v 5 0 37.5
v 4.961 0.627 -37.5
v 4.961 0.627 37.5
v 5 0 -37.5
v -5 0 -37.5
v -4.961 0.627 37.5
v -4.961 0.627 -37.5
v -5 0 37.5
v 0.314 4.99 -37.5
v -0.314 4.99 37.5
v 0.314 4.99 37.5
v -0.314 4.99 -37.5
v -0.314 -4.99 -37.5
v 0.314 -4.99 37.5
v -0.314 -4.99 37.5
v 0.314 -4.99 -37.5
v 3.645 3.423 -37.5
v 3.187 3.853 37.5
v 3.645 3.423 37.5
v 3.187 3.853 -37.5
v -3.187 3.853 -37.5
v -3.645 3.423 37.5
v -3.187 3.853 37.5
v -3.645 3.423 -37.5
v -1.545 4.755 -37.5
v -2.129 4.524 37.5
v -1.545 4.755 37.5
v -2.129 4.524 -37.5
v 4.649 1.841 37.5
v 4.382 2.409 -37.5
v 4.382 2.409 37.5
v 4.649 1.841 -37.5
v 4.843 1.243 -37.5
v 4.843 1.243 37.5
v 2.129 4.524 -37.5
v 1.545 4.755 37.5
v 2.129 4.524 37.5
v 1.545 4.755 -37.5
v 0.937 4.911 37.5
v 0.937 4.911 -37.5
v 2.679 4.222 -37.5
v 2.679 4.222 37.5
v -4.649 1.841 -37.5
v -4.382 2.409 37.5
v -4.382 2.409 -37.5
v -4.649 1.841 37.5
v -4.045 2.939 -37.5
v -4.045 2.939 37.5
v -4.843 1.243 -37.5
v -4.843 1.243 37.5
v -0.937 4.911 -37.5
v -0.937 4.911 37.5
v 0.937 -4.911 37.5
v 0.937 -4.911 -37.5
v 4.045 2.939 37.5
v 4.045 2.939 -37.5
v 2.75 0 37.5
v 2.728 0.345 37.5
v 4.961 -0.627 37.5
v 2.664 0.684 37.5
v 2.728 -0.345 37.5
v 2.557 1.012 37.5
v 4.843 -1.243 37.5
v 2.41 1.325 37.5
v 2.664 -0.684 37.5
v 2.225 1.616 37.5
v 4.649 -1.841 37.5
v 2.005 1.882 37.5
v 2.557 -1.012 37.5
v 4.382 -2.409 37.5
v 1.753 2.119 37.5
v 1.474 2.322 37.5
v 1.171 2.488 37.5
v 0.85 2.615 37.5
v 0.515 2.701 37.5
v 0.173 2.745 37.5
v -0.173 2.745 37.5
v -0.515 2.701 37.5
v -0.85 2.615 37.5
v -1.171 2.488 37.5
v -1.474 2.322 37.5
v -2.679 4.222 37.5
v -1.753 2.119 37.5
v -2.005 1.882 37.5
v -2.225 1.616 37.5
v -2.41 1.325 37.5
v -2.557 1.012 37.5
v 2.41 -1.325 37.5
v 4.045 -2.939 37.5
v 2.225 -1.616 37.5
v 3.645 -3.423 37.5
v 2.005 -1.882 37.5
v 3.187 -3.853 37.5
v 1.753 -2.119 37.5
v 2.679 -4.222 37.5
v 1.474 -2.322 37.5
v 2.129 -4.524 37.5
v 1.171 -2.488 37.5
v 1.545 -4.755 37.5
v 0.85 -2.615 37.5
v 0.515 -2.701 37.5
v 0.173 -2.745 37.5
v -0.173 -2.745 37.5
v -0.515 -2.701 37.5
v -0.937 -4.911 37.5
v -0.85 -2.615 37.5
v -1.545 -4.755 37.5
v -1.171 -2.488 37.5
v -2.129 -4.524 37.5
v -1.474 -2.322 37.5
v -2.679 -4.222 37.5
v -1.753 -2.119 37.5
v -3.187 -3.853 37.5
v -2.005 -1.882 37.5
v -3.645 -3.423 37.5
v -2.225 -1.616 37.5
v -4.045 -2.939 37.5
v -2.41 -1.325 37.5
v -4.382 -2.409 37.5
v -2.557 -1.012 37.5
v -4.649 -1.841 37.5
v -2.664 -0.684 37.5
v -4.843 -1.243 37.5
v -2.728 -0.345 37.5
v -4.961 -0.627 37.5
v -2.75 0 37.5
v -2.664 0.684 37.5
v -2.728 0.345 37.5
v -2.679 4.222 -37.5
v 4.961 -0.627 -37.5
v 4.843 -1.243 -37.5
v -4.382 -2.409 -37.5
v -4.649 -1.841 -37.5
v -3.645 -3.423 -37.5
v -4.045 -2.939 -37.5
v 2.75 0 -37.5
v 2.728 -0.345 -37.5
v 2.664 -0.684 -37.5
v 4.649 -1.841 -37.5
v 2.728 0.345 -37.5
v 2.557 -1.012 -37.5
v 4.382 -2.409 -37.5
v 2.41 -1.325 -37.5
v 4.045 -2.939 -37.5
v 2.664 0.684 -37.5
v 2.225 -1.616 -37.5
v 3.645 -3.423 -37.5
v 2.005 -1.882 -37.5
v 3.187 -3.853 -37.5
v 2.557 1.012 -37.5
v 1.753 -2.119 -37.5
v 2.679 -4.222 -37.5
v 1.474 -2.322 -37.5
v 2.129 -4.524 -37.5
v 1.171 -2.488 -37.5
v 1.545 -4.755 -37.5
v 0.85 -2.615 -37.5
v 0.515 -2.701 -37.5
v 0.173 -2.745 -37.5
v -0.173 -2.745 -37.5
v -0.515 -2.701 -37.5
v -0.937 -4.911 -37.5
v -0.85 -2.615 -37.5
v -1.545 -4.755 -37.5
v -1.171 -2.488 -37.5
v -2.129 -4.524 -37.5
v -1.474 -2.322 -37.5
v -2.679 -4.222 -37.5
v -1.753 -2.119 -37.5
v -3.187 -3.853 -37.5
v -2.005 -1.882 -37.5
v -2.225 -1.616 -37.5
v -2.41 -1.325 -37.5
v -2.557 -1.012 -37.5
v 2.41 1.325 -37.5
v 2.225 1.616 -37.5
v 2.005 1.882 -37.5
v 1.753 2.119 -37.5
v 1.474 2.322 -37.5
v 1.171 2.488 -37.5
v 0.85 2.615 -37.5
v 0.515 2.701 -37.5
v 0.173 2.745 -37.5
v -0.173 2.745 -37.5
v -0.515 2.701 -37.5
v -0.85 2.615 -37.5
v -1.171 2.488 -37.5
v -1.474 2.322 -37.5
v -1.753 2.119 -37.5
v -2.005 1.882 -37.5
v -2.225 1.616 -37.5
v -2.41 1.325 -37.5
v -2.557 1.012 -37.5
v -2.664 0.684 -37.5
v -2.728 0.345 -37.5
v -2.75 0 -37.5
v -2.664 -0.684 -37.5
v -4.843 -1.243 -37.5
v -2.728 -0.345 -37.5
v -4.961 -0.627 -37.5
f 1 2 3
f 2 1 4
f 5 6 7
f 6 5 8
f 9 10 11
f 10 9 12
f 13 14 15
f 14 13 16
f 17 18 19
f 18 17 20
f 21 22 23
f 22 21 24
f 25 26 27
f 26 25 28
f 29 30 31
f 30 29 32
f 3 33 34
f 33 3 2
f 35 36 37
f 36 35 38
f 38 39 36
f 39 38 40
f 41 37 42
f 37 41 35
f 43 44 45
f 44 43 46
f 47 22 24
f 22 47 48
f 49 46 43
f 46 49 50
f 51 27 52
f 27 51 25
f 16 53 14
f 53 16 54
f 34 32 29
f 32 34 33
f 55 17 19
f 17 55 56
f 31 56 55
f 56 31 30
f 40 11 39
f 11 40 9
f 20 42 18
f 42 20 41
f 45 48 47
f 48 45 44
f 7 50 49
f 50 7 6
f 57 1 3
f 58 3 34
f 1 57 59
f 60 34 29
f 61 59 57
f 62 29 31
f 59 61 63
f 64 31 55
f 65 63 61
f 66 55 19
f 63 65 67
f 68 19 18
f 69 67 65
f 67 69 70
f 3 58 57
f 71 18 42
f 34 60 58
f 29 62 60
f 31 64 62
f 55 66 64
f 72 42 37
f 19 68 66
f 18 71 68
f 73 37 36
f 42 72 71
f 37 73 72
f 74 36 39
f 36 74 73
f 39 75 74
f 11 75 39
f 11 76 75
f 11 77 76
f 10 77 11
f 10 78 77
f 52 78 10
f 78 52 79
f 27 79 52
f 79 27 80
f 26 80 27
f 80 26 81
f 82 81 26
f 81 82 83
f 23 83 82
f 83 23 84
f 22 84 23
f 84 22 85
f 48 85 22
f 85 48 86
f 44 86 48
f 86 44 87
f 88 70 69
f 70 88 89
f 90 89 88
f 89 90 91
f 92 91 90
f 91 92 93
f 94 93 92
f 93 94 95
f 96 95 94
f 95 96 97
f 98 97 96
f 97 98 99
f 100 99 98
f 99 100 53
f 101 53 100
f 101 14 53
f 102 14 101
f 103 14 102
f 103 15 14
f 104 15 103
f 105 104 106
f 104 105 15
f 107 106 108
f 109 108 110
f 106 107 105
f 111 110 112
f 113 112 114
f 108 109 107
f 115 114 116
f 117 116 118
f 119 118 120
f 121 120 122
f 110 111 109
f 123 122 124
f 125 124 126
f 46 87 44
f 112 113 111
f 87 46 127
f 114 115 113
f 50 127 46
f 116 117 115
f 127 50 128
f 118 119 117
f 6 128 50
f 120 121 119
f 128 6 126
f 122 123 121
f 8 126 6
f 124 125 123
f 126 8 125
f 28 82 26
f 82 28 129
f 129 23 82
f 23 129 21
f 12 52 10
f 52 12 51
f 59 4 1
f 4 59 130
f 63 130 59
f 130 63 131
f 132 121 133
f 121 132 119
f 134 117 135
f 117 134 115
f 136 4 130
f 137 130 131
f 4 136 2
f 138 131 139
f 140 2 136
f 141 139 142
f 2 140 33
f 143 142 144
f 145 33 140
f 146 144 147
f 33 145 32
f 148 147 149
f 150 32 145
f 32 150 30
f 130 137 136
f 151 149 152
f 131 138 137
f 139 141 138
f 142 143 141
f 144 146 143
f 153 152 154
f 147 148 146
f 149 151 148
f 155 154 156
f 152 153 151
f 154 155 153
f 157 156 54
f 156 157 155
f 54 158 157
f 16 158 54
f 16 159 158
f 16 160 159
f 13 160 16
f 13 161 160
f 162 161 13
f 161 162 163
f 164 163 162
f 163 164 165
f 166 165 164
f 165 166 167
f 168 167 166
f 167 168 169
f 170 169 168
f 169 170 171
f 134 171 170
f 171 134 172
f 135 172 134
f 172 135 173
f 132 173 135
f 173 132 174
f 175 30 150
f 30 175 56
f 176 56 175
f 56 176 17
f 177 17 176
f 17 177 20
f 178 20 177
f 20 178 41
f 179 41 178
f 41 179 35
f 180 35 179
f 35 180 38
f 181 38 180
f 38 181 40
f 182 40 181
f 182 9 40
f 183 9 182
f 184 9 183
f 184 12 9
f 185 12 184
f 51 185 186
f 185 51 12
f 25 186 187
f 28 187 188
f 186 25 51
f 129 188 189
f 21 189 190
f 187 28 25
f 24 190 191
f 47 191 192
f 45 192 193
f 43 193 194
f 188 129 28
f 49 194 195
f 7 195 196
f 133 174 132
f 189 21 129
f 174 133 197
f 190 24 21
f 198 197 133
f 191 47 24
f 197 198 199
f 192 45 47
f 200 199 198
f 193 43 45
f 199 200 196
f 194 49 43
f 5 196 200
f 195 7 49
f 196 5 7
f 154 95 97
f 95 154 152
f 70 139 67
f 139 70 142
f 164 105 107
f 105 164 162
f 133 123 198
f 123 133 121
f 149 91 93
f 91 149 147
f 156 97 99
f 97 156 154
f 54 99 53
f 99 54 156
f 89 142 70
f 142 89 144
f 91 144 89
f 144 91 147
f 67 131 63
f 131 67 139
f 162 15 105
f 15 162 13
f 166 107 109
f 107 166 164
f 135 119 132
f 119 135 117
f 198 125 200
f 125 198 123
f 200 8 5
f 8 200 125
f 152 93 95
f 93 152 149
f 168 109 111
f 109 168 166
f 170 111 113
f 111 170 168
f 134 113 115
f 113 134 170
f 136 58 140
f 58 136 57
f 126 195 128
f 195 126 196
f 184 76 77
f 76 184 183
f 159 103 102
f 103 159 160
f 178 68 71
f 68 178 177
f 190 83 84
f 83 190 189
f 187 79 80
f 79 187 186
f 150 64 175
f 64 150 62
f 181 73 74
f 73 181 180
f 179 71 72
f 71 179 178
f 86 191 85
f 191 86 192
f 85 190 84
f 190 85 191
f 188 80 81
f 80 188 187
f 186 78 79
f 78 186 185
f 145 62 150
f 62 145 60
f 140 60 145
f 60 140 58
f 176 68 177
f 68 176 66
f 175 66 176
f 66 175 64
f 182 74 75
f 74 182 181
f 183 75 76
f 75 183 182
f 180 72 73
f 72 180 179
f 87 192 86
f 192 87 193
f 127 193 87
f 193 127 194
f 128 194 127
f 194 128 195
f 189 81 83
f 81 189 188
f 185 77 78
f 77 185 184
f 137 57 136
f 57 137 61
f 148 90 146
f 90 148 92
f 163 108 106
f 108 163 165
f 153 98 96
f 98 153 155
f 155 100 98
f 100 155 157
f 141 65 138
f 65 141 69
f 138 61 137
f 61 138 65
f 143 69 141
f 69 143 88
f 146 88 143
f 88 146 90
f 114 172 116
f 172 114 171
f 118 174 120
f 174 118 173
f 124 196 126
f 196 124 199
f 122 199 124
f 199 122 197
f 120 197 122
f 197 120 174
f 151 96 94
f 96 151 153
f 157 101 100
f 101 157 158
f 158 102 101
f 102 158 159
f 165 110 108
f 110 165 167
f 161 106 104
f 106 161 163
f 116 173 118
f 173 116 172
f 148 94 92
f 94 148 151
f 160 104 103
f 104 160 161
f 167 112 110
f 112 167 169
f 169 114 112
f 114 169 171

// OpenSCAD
$fn = 50;


difference() {
	union() {
		translate(v = [0, 0, -37.5000000000]) {
			cylinder(h = 75, r = 5.0000000000);
		}
	}
	union() {
		translate(v = [0, 0, -100.0000000000]) {
			cylinder(h = 200, r = 2.7500000000);
		}
	}
}
